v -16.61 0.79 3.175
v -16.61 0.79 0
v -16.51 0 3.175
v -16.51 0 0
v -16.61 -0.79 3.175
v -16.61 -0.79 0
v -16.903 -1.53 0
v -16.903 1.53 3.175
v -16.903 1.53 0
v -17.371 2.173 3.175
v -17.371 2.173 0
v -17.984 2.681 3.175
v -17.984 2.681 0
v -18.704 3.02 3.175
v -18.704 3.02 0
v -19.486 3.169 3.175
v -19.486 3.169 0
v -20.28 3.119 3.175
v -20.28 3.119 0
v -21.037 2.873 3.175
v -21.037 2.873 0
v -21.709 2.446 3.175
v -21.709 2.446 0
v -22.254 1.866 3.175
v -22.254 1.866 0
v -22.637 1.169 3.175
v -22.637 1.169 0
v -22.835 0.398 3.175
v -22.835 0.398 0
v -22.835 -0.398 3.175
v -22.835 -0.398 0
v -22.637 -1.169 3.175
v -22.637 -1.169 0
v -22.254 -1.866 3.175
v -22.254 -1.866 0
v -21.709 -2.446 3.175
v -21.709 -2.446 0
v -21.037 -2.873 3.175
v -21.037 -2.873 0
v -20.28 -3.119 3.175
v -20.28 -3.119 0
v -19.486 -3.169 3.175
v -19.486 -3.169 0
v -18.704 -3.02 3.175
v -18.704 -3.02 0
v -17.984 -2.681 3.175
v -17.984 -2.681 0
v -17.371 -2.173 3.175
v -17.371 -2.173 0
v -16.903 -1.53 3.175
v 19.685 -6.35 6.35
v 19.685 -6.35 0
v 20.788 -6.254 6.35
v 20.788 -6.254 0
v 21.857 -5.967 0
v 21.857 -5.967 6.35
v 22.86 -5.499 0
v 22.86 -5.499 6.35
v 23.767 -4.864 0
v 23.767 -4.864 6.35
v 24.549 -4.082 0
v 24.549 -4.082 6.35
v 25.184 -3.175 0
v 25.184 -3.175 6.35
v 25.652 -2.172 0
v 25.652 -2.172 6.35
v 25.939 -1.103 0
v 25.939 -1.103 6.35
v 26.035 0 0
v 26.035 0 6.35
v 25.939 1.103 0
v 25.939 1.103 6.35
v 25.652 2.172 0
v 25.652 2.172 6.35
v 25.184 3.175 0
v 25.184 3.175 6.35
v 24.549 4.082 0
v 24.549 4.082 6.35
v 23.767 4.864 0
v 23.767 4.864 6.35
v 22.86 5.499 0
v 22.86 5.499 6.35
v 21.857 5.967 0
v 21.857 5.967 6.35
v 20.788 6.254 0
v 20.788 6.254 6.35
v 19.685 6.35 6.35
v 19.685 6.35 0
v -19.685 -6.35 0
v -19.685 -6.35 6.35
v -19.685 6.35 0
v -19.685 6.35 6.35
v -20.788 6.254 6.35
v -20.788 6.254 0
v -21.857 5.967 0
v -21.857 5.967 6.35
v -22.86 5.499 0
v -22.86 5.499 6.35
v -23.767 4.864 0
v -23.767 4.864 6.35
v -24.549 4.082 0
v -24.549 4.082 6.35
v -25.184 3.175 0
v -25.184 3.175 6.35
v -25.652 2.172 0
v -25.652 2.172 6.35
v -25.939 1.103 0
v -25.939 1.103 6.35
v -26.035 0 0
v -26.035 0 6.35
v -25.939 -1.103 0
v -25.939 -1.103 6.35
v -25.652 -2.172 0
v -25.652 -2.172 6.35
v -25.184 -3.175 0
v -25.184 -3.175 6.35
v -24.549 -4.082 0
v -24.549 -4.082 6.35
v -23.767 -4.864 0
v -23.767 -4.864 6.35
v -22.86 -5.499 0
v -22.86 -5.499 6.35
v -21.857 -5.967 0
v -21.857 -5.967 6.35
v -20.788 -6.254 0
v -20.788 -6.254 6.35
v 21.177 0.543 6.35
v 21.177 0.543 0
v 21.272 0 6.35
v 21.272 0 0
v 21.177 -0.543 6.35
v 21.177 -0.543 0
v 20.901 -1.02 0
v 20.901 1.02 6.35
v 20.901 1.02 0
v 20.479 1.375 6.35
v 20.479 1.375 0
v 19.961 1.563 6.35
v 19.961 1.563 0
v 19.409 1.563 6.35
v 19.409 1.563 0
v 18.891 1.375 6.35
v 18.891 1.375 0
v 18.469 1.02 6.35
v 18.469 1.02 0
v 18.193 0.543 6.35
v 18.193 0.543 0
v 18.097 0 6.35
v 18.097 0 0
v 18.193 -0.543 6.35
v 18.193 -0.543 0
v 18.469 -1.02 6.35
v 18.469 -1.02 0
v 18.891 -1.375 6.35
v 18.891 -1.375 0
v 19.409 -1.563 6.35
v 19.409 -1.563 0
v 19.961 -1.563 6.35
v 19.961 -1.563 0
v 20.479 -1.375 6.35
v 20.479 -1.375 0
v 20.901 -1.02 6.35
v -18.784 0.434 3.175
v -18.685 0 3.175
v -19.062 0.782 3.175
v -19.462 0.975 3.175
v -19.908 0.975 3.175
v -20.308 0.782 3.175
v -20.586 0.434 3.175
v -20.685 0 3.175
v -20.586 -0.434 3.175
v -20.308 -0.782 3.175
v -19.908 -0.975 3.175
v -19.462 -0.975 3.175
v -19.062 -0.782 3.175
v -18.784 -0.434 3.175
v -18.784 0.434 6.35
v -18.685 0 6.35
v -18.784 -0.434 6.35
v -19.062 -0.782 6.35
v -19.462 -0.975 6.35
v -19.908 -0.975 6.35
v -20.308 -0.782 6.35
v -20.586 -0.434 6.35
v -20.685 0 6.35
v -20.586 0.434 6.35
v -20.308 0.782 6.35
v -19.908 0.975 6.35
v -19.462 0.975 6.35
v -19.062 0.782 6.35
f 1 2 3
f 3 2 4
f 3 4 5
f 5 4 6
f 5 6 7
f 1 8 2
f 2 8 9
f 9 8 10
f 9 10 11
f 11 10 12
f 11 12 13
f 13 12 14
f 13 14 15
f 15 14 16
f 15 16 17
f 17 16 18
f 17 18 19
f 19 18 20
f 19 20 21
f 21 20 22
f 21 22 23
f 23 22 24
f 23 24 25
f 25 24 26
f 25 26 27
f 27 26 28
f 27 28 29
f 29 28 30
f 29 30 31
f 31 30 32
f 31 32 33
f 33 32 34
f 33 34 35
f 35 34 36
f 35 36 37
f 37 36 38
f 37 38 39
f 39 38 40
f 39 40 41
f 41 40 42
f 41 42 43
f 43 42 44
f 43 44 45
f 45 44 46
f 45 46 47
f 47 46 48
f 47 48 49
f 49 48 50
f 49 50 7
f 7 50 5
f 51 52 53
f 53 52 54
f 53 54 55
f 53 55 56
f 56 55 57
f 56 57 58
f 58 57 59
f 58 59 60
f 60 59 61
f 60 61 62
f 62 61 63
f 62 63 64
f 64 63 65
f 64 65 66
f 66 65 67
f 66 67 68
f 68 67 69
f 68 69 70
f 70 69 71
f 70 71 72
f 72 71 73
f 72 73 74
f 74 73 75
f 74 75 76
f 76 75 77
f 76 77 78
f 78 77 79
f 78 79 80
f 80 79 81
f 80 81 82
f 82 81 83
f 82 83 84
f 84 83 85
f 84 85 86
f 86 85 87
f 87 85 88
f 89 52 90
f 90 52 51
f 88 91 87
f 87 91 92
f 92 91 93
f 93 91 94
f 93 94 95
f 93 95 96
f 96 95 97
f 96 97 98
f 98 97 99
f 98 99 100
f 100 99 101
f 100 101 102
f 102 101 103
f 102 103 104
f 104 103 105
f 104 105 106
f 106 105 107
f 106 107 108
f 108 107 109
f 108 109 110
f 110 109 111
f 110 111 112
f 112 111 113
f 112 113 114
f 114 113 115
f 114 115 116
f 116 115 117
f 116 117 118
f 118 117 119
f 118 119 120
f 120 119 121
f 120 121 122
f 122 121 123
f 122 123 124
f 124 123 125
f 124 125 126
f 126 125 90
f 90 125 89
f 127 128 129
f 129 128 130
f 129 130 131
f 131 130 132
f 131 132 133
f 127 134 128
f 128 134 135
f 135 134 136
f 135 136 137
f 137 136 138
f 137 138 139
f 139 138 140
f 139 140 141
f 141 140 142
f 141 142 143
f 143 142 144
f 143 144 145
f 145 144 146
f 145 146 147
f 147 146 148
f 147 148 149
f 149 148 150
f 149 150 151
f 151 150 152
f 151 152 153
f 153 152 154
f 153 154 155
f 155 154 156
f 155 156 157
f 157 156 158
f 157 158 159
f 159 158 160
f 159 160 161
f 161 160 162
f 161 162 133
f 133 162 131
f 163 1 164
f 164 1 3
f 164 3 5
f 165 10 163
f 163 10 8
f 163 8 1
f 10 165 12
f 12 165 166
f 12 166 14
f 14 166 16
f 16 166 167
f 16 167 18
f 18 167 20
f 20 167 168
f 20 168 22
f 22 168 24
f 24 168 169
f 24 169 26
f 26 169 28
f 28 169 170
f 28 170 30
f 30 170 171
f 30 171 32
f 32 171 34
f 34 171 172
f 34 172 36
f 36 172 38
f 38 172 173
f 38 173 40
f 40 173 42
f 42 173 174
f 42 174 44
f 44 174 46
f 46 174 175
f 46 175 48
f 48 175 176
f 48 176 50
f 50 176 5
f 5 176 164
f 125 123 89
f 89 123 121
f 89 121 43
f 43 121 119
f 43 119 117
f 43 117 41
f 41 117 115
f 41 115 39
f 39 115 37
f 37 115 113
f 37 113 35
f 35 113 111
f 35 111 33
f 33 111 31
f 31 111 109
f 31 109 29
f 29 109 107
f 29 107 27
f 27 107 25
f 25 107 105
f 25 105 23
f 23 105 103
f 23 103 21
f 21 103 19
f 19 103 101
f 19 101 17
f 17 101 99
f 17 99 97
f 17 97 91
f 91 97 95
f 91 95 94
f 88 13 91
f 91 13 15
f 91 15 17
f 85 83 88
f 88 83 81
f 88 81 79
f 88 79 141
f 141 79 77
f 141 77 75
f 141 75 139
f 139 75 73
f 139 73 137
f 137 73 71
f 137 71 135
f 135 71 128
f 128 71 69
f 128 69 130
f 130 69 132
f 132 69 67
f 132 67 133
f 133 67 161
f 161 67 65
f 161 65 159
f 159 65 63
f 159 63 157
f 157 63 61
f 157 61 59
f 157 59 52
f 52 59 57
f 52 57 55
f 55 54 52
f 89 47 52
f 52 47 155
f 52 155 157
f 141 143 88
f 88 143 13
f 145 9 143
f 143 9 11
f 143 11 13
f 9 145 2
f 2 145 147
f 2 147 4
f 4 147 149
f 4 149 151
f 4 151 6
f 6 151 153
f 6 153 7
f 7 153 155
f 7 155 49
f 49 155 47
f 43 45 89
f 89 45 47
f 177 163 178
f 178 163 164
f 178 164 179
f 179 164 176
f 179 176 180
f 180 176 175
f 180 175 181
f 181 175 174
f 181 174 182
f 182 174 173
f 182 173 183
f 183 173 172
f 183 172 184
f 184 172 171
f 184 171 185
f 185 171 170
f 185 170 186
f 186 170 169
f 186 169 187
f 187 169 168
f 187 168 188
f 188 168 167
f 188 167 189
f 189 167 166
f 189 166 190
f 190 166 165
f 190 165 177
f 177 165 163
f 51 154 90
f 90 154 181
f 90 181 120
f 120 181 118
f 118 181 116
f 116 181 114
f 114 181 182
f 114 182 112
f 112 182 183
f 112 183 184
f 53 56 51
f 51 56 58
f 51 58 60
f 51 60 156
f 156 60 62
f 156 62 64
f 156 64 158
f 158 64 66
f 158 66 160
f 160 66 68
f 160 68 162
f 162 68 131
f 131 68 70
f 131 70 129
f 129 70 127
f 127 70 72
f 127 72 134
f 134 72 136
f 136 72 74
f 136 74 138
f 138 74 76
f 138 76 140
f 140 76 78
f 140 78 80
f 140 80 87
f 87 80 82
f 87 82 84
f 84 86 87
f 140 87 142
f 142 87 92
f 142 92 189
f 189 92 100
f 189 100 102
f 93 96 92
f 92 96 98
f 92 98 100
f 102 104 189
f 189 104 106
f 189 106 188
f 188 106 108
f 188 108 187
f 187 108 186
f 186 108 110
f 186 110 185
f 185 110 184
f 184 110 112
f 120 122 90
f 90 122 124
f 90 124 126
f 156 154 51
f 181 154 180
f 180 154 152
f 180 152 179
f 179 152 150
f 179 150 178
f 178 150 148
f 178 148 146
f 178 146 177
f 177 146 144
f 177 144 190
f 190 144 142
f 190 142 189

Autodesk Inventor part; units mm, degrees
ref_plane "YZ Plane" through (0, 0, 0) normal (1, 0, 0) x (0, 1, 0)
ref_plane "XZ Plane" through (0, 0, 0) normal (0, 1, 0) x (-1, 0, 0)
ref_plane "XY Plane" through (0, 0, 0) normal (0, 0, 1) x (1, 0, 0)
sketch "Sketch1" plane through (0, 0, 0) normal (0, 0, 1) x (1, 0, 0)
  line L0 (19.685, 0) -> (-19.685, 0) construction
  line L1 (19.685, 6.35) -> (-19.685, 6.35)
  line L2 (-19.685, -6.35) -> (19.685, -6.35)
  arc A0 (19.685, -6.35) -> (19.685, 6.35) centre (19.685, 0) ccw
  arc A1 (-19.685, 6.35) -> (-19.685, -6.35) centre (-19.685, 0) ccw
  circle A2 centre (-19.685, 0) radius 3.175
  circle A3 centre (19.685, 0) radius 1.5875
  point P0 (0, 0)
  dimension "d0" = 6.35
  dimension "d1" = 39.37
  dimension "d2" = 6.35
  dimension "d3" = 3.175
extrude "Extrusion1" add sketch "Sketch1" along normal blind 3.175
sketch "Sketch2" plane through (0, 0, 3.175) normal (0, 0, 1) x (1, 0, 0)
  arc A0 (-19.685, 6.35) -> (-19.685, -6.35) centre (-19.685, 0) ccw projected
  line L0 (-19.685, -6.35) -> (19.685, -6.35) projected
  arc A1 (19.685, -6.35) -> (19.685, 6.35) centre (19.685, 0) ccw projected
  line L1 (19.685, 6.35) -> (-19.685, 6.35) projected
  circle A2 centre (19.685, 0) radius 1.5875 projected
  circle A3 centre (-19.685, 0) radius 3.175 projected
  circle A4 centre (-19.685, 0) radius 1
  point P0 (0, 0)
  dimension "d6" = 2
extrude "Extrusion2" add sketch "Sketch2" along normal blind 3.175 contours L1 A1 L0 A0 | A3
properties part number "bunny neck"
